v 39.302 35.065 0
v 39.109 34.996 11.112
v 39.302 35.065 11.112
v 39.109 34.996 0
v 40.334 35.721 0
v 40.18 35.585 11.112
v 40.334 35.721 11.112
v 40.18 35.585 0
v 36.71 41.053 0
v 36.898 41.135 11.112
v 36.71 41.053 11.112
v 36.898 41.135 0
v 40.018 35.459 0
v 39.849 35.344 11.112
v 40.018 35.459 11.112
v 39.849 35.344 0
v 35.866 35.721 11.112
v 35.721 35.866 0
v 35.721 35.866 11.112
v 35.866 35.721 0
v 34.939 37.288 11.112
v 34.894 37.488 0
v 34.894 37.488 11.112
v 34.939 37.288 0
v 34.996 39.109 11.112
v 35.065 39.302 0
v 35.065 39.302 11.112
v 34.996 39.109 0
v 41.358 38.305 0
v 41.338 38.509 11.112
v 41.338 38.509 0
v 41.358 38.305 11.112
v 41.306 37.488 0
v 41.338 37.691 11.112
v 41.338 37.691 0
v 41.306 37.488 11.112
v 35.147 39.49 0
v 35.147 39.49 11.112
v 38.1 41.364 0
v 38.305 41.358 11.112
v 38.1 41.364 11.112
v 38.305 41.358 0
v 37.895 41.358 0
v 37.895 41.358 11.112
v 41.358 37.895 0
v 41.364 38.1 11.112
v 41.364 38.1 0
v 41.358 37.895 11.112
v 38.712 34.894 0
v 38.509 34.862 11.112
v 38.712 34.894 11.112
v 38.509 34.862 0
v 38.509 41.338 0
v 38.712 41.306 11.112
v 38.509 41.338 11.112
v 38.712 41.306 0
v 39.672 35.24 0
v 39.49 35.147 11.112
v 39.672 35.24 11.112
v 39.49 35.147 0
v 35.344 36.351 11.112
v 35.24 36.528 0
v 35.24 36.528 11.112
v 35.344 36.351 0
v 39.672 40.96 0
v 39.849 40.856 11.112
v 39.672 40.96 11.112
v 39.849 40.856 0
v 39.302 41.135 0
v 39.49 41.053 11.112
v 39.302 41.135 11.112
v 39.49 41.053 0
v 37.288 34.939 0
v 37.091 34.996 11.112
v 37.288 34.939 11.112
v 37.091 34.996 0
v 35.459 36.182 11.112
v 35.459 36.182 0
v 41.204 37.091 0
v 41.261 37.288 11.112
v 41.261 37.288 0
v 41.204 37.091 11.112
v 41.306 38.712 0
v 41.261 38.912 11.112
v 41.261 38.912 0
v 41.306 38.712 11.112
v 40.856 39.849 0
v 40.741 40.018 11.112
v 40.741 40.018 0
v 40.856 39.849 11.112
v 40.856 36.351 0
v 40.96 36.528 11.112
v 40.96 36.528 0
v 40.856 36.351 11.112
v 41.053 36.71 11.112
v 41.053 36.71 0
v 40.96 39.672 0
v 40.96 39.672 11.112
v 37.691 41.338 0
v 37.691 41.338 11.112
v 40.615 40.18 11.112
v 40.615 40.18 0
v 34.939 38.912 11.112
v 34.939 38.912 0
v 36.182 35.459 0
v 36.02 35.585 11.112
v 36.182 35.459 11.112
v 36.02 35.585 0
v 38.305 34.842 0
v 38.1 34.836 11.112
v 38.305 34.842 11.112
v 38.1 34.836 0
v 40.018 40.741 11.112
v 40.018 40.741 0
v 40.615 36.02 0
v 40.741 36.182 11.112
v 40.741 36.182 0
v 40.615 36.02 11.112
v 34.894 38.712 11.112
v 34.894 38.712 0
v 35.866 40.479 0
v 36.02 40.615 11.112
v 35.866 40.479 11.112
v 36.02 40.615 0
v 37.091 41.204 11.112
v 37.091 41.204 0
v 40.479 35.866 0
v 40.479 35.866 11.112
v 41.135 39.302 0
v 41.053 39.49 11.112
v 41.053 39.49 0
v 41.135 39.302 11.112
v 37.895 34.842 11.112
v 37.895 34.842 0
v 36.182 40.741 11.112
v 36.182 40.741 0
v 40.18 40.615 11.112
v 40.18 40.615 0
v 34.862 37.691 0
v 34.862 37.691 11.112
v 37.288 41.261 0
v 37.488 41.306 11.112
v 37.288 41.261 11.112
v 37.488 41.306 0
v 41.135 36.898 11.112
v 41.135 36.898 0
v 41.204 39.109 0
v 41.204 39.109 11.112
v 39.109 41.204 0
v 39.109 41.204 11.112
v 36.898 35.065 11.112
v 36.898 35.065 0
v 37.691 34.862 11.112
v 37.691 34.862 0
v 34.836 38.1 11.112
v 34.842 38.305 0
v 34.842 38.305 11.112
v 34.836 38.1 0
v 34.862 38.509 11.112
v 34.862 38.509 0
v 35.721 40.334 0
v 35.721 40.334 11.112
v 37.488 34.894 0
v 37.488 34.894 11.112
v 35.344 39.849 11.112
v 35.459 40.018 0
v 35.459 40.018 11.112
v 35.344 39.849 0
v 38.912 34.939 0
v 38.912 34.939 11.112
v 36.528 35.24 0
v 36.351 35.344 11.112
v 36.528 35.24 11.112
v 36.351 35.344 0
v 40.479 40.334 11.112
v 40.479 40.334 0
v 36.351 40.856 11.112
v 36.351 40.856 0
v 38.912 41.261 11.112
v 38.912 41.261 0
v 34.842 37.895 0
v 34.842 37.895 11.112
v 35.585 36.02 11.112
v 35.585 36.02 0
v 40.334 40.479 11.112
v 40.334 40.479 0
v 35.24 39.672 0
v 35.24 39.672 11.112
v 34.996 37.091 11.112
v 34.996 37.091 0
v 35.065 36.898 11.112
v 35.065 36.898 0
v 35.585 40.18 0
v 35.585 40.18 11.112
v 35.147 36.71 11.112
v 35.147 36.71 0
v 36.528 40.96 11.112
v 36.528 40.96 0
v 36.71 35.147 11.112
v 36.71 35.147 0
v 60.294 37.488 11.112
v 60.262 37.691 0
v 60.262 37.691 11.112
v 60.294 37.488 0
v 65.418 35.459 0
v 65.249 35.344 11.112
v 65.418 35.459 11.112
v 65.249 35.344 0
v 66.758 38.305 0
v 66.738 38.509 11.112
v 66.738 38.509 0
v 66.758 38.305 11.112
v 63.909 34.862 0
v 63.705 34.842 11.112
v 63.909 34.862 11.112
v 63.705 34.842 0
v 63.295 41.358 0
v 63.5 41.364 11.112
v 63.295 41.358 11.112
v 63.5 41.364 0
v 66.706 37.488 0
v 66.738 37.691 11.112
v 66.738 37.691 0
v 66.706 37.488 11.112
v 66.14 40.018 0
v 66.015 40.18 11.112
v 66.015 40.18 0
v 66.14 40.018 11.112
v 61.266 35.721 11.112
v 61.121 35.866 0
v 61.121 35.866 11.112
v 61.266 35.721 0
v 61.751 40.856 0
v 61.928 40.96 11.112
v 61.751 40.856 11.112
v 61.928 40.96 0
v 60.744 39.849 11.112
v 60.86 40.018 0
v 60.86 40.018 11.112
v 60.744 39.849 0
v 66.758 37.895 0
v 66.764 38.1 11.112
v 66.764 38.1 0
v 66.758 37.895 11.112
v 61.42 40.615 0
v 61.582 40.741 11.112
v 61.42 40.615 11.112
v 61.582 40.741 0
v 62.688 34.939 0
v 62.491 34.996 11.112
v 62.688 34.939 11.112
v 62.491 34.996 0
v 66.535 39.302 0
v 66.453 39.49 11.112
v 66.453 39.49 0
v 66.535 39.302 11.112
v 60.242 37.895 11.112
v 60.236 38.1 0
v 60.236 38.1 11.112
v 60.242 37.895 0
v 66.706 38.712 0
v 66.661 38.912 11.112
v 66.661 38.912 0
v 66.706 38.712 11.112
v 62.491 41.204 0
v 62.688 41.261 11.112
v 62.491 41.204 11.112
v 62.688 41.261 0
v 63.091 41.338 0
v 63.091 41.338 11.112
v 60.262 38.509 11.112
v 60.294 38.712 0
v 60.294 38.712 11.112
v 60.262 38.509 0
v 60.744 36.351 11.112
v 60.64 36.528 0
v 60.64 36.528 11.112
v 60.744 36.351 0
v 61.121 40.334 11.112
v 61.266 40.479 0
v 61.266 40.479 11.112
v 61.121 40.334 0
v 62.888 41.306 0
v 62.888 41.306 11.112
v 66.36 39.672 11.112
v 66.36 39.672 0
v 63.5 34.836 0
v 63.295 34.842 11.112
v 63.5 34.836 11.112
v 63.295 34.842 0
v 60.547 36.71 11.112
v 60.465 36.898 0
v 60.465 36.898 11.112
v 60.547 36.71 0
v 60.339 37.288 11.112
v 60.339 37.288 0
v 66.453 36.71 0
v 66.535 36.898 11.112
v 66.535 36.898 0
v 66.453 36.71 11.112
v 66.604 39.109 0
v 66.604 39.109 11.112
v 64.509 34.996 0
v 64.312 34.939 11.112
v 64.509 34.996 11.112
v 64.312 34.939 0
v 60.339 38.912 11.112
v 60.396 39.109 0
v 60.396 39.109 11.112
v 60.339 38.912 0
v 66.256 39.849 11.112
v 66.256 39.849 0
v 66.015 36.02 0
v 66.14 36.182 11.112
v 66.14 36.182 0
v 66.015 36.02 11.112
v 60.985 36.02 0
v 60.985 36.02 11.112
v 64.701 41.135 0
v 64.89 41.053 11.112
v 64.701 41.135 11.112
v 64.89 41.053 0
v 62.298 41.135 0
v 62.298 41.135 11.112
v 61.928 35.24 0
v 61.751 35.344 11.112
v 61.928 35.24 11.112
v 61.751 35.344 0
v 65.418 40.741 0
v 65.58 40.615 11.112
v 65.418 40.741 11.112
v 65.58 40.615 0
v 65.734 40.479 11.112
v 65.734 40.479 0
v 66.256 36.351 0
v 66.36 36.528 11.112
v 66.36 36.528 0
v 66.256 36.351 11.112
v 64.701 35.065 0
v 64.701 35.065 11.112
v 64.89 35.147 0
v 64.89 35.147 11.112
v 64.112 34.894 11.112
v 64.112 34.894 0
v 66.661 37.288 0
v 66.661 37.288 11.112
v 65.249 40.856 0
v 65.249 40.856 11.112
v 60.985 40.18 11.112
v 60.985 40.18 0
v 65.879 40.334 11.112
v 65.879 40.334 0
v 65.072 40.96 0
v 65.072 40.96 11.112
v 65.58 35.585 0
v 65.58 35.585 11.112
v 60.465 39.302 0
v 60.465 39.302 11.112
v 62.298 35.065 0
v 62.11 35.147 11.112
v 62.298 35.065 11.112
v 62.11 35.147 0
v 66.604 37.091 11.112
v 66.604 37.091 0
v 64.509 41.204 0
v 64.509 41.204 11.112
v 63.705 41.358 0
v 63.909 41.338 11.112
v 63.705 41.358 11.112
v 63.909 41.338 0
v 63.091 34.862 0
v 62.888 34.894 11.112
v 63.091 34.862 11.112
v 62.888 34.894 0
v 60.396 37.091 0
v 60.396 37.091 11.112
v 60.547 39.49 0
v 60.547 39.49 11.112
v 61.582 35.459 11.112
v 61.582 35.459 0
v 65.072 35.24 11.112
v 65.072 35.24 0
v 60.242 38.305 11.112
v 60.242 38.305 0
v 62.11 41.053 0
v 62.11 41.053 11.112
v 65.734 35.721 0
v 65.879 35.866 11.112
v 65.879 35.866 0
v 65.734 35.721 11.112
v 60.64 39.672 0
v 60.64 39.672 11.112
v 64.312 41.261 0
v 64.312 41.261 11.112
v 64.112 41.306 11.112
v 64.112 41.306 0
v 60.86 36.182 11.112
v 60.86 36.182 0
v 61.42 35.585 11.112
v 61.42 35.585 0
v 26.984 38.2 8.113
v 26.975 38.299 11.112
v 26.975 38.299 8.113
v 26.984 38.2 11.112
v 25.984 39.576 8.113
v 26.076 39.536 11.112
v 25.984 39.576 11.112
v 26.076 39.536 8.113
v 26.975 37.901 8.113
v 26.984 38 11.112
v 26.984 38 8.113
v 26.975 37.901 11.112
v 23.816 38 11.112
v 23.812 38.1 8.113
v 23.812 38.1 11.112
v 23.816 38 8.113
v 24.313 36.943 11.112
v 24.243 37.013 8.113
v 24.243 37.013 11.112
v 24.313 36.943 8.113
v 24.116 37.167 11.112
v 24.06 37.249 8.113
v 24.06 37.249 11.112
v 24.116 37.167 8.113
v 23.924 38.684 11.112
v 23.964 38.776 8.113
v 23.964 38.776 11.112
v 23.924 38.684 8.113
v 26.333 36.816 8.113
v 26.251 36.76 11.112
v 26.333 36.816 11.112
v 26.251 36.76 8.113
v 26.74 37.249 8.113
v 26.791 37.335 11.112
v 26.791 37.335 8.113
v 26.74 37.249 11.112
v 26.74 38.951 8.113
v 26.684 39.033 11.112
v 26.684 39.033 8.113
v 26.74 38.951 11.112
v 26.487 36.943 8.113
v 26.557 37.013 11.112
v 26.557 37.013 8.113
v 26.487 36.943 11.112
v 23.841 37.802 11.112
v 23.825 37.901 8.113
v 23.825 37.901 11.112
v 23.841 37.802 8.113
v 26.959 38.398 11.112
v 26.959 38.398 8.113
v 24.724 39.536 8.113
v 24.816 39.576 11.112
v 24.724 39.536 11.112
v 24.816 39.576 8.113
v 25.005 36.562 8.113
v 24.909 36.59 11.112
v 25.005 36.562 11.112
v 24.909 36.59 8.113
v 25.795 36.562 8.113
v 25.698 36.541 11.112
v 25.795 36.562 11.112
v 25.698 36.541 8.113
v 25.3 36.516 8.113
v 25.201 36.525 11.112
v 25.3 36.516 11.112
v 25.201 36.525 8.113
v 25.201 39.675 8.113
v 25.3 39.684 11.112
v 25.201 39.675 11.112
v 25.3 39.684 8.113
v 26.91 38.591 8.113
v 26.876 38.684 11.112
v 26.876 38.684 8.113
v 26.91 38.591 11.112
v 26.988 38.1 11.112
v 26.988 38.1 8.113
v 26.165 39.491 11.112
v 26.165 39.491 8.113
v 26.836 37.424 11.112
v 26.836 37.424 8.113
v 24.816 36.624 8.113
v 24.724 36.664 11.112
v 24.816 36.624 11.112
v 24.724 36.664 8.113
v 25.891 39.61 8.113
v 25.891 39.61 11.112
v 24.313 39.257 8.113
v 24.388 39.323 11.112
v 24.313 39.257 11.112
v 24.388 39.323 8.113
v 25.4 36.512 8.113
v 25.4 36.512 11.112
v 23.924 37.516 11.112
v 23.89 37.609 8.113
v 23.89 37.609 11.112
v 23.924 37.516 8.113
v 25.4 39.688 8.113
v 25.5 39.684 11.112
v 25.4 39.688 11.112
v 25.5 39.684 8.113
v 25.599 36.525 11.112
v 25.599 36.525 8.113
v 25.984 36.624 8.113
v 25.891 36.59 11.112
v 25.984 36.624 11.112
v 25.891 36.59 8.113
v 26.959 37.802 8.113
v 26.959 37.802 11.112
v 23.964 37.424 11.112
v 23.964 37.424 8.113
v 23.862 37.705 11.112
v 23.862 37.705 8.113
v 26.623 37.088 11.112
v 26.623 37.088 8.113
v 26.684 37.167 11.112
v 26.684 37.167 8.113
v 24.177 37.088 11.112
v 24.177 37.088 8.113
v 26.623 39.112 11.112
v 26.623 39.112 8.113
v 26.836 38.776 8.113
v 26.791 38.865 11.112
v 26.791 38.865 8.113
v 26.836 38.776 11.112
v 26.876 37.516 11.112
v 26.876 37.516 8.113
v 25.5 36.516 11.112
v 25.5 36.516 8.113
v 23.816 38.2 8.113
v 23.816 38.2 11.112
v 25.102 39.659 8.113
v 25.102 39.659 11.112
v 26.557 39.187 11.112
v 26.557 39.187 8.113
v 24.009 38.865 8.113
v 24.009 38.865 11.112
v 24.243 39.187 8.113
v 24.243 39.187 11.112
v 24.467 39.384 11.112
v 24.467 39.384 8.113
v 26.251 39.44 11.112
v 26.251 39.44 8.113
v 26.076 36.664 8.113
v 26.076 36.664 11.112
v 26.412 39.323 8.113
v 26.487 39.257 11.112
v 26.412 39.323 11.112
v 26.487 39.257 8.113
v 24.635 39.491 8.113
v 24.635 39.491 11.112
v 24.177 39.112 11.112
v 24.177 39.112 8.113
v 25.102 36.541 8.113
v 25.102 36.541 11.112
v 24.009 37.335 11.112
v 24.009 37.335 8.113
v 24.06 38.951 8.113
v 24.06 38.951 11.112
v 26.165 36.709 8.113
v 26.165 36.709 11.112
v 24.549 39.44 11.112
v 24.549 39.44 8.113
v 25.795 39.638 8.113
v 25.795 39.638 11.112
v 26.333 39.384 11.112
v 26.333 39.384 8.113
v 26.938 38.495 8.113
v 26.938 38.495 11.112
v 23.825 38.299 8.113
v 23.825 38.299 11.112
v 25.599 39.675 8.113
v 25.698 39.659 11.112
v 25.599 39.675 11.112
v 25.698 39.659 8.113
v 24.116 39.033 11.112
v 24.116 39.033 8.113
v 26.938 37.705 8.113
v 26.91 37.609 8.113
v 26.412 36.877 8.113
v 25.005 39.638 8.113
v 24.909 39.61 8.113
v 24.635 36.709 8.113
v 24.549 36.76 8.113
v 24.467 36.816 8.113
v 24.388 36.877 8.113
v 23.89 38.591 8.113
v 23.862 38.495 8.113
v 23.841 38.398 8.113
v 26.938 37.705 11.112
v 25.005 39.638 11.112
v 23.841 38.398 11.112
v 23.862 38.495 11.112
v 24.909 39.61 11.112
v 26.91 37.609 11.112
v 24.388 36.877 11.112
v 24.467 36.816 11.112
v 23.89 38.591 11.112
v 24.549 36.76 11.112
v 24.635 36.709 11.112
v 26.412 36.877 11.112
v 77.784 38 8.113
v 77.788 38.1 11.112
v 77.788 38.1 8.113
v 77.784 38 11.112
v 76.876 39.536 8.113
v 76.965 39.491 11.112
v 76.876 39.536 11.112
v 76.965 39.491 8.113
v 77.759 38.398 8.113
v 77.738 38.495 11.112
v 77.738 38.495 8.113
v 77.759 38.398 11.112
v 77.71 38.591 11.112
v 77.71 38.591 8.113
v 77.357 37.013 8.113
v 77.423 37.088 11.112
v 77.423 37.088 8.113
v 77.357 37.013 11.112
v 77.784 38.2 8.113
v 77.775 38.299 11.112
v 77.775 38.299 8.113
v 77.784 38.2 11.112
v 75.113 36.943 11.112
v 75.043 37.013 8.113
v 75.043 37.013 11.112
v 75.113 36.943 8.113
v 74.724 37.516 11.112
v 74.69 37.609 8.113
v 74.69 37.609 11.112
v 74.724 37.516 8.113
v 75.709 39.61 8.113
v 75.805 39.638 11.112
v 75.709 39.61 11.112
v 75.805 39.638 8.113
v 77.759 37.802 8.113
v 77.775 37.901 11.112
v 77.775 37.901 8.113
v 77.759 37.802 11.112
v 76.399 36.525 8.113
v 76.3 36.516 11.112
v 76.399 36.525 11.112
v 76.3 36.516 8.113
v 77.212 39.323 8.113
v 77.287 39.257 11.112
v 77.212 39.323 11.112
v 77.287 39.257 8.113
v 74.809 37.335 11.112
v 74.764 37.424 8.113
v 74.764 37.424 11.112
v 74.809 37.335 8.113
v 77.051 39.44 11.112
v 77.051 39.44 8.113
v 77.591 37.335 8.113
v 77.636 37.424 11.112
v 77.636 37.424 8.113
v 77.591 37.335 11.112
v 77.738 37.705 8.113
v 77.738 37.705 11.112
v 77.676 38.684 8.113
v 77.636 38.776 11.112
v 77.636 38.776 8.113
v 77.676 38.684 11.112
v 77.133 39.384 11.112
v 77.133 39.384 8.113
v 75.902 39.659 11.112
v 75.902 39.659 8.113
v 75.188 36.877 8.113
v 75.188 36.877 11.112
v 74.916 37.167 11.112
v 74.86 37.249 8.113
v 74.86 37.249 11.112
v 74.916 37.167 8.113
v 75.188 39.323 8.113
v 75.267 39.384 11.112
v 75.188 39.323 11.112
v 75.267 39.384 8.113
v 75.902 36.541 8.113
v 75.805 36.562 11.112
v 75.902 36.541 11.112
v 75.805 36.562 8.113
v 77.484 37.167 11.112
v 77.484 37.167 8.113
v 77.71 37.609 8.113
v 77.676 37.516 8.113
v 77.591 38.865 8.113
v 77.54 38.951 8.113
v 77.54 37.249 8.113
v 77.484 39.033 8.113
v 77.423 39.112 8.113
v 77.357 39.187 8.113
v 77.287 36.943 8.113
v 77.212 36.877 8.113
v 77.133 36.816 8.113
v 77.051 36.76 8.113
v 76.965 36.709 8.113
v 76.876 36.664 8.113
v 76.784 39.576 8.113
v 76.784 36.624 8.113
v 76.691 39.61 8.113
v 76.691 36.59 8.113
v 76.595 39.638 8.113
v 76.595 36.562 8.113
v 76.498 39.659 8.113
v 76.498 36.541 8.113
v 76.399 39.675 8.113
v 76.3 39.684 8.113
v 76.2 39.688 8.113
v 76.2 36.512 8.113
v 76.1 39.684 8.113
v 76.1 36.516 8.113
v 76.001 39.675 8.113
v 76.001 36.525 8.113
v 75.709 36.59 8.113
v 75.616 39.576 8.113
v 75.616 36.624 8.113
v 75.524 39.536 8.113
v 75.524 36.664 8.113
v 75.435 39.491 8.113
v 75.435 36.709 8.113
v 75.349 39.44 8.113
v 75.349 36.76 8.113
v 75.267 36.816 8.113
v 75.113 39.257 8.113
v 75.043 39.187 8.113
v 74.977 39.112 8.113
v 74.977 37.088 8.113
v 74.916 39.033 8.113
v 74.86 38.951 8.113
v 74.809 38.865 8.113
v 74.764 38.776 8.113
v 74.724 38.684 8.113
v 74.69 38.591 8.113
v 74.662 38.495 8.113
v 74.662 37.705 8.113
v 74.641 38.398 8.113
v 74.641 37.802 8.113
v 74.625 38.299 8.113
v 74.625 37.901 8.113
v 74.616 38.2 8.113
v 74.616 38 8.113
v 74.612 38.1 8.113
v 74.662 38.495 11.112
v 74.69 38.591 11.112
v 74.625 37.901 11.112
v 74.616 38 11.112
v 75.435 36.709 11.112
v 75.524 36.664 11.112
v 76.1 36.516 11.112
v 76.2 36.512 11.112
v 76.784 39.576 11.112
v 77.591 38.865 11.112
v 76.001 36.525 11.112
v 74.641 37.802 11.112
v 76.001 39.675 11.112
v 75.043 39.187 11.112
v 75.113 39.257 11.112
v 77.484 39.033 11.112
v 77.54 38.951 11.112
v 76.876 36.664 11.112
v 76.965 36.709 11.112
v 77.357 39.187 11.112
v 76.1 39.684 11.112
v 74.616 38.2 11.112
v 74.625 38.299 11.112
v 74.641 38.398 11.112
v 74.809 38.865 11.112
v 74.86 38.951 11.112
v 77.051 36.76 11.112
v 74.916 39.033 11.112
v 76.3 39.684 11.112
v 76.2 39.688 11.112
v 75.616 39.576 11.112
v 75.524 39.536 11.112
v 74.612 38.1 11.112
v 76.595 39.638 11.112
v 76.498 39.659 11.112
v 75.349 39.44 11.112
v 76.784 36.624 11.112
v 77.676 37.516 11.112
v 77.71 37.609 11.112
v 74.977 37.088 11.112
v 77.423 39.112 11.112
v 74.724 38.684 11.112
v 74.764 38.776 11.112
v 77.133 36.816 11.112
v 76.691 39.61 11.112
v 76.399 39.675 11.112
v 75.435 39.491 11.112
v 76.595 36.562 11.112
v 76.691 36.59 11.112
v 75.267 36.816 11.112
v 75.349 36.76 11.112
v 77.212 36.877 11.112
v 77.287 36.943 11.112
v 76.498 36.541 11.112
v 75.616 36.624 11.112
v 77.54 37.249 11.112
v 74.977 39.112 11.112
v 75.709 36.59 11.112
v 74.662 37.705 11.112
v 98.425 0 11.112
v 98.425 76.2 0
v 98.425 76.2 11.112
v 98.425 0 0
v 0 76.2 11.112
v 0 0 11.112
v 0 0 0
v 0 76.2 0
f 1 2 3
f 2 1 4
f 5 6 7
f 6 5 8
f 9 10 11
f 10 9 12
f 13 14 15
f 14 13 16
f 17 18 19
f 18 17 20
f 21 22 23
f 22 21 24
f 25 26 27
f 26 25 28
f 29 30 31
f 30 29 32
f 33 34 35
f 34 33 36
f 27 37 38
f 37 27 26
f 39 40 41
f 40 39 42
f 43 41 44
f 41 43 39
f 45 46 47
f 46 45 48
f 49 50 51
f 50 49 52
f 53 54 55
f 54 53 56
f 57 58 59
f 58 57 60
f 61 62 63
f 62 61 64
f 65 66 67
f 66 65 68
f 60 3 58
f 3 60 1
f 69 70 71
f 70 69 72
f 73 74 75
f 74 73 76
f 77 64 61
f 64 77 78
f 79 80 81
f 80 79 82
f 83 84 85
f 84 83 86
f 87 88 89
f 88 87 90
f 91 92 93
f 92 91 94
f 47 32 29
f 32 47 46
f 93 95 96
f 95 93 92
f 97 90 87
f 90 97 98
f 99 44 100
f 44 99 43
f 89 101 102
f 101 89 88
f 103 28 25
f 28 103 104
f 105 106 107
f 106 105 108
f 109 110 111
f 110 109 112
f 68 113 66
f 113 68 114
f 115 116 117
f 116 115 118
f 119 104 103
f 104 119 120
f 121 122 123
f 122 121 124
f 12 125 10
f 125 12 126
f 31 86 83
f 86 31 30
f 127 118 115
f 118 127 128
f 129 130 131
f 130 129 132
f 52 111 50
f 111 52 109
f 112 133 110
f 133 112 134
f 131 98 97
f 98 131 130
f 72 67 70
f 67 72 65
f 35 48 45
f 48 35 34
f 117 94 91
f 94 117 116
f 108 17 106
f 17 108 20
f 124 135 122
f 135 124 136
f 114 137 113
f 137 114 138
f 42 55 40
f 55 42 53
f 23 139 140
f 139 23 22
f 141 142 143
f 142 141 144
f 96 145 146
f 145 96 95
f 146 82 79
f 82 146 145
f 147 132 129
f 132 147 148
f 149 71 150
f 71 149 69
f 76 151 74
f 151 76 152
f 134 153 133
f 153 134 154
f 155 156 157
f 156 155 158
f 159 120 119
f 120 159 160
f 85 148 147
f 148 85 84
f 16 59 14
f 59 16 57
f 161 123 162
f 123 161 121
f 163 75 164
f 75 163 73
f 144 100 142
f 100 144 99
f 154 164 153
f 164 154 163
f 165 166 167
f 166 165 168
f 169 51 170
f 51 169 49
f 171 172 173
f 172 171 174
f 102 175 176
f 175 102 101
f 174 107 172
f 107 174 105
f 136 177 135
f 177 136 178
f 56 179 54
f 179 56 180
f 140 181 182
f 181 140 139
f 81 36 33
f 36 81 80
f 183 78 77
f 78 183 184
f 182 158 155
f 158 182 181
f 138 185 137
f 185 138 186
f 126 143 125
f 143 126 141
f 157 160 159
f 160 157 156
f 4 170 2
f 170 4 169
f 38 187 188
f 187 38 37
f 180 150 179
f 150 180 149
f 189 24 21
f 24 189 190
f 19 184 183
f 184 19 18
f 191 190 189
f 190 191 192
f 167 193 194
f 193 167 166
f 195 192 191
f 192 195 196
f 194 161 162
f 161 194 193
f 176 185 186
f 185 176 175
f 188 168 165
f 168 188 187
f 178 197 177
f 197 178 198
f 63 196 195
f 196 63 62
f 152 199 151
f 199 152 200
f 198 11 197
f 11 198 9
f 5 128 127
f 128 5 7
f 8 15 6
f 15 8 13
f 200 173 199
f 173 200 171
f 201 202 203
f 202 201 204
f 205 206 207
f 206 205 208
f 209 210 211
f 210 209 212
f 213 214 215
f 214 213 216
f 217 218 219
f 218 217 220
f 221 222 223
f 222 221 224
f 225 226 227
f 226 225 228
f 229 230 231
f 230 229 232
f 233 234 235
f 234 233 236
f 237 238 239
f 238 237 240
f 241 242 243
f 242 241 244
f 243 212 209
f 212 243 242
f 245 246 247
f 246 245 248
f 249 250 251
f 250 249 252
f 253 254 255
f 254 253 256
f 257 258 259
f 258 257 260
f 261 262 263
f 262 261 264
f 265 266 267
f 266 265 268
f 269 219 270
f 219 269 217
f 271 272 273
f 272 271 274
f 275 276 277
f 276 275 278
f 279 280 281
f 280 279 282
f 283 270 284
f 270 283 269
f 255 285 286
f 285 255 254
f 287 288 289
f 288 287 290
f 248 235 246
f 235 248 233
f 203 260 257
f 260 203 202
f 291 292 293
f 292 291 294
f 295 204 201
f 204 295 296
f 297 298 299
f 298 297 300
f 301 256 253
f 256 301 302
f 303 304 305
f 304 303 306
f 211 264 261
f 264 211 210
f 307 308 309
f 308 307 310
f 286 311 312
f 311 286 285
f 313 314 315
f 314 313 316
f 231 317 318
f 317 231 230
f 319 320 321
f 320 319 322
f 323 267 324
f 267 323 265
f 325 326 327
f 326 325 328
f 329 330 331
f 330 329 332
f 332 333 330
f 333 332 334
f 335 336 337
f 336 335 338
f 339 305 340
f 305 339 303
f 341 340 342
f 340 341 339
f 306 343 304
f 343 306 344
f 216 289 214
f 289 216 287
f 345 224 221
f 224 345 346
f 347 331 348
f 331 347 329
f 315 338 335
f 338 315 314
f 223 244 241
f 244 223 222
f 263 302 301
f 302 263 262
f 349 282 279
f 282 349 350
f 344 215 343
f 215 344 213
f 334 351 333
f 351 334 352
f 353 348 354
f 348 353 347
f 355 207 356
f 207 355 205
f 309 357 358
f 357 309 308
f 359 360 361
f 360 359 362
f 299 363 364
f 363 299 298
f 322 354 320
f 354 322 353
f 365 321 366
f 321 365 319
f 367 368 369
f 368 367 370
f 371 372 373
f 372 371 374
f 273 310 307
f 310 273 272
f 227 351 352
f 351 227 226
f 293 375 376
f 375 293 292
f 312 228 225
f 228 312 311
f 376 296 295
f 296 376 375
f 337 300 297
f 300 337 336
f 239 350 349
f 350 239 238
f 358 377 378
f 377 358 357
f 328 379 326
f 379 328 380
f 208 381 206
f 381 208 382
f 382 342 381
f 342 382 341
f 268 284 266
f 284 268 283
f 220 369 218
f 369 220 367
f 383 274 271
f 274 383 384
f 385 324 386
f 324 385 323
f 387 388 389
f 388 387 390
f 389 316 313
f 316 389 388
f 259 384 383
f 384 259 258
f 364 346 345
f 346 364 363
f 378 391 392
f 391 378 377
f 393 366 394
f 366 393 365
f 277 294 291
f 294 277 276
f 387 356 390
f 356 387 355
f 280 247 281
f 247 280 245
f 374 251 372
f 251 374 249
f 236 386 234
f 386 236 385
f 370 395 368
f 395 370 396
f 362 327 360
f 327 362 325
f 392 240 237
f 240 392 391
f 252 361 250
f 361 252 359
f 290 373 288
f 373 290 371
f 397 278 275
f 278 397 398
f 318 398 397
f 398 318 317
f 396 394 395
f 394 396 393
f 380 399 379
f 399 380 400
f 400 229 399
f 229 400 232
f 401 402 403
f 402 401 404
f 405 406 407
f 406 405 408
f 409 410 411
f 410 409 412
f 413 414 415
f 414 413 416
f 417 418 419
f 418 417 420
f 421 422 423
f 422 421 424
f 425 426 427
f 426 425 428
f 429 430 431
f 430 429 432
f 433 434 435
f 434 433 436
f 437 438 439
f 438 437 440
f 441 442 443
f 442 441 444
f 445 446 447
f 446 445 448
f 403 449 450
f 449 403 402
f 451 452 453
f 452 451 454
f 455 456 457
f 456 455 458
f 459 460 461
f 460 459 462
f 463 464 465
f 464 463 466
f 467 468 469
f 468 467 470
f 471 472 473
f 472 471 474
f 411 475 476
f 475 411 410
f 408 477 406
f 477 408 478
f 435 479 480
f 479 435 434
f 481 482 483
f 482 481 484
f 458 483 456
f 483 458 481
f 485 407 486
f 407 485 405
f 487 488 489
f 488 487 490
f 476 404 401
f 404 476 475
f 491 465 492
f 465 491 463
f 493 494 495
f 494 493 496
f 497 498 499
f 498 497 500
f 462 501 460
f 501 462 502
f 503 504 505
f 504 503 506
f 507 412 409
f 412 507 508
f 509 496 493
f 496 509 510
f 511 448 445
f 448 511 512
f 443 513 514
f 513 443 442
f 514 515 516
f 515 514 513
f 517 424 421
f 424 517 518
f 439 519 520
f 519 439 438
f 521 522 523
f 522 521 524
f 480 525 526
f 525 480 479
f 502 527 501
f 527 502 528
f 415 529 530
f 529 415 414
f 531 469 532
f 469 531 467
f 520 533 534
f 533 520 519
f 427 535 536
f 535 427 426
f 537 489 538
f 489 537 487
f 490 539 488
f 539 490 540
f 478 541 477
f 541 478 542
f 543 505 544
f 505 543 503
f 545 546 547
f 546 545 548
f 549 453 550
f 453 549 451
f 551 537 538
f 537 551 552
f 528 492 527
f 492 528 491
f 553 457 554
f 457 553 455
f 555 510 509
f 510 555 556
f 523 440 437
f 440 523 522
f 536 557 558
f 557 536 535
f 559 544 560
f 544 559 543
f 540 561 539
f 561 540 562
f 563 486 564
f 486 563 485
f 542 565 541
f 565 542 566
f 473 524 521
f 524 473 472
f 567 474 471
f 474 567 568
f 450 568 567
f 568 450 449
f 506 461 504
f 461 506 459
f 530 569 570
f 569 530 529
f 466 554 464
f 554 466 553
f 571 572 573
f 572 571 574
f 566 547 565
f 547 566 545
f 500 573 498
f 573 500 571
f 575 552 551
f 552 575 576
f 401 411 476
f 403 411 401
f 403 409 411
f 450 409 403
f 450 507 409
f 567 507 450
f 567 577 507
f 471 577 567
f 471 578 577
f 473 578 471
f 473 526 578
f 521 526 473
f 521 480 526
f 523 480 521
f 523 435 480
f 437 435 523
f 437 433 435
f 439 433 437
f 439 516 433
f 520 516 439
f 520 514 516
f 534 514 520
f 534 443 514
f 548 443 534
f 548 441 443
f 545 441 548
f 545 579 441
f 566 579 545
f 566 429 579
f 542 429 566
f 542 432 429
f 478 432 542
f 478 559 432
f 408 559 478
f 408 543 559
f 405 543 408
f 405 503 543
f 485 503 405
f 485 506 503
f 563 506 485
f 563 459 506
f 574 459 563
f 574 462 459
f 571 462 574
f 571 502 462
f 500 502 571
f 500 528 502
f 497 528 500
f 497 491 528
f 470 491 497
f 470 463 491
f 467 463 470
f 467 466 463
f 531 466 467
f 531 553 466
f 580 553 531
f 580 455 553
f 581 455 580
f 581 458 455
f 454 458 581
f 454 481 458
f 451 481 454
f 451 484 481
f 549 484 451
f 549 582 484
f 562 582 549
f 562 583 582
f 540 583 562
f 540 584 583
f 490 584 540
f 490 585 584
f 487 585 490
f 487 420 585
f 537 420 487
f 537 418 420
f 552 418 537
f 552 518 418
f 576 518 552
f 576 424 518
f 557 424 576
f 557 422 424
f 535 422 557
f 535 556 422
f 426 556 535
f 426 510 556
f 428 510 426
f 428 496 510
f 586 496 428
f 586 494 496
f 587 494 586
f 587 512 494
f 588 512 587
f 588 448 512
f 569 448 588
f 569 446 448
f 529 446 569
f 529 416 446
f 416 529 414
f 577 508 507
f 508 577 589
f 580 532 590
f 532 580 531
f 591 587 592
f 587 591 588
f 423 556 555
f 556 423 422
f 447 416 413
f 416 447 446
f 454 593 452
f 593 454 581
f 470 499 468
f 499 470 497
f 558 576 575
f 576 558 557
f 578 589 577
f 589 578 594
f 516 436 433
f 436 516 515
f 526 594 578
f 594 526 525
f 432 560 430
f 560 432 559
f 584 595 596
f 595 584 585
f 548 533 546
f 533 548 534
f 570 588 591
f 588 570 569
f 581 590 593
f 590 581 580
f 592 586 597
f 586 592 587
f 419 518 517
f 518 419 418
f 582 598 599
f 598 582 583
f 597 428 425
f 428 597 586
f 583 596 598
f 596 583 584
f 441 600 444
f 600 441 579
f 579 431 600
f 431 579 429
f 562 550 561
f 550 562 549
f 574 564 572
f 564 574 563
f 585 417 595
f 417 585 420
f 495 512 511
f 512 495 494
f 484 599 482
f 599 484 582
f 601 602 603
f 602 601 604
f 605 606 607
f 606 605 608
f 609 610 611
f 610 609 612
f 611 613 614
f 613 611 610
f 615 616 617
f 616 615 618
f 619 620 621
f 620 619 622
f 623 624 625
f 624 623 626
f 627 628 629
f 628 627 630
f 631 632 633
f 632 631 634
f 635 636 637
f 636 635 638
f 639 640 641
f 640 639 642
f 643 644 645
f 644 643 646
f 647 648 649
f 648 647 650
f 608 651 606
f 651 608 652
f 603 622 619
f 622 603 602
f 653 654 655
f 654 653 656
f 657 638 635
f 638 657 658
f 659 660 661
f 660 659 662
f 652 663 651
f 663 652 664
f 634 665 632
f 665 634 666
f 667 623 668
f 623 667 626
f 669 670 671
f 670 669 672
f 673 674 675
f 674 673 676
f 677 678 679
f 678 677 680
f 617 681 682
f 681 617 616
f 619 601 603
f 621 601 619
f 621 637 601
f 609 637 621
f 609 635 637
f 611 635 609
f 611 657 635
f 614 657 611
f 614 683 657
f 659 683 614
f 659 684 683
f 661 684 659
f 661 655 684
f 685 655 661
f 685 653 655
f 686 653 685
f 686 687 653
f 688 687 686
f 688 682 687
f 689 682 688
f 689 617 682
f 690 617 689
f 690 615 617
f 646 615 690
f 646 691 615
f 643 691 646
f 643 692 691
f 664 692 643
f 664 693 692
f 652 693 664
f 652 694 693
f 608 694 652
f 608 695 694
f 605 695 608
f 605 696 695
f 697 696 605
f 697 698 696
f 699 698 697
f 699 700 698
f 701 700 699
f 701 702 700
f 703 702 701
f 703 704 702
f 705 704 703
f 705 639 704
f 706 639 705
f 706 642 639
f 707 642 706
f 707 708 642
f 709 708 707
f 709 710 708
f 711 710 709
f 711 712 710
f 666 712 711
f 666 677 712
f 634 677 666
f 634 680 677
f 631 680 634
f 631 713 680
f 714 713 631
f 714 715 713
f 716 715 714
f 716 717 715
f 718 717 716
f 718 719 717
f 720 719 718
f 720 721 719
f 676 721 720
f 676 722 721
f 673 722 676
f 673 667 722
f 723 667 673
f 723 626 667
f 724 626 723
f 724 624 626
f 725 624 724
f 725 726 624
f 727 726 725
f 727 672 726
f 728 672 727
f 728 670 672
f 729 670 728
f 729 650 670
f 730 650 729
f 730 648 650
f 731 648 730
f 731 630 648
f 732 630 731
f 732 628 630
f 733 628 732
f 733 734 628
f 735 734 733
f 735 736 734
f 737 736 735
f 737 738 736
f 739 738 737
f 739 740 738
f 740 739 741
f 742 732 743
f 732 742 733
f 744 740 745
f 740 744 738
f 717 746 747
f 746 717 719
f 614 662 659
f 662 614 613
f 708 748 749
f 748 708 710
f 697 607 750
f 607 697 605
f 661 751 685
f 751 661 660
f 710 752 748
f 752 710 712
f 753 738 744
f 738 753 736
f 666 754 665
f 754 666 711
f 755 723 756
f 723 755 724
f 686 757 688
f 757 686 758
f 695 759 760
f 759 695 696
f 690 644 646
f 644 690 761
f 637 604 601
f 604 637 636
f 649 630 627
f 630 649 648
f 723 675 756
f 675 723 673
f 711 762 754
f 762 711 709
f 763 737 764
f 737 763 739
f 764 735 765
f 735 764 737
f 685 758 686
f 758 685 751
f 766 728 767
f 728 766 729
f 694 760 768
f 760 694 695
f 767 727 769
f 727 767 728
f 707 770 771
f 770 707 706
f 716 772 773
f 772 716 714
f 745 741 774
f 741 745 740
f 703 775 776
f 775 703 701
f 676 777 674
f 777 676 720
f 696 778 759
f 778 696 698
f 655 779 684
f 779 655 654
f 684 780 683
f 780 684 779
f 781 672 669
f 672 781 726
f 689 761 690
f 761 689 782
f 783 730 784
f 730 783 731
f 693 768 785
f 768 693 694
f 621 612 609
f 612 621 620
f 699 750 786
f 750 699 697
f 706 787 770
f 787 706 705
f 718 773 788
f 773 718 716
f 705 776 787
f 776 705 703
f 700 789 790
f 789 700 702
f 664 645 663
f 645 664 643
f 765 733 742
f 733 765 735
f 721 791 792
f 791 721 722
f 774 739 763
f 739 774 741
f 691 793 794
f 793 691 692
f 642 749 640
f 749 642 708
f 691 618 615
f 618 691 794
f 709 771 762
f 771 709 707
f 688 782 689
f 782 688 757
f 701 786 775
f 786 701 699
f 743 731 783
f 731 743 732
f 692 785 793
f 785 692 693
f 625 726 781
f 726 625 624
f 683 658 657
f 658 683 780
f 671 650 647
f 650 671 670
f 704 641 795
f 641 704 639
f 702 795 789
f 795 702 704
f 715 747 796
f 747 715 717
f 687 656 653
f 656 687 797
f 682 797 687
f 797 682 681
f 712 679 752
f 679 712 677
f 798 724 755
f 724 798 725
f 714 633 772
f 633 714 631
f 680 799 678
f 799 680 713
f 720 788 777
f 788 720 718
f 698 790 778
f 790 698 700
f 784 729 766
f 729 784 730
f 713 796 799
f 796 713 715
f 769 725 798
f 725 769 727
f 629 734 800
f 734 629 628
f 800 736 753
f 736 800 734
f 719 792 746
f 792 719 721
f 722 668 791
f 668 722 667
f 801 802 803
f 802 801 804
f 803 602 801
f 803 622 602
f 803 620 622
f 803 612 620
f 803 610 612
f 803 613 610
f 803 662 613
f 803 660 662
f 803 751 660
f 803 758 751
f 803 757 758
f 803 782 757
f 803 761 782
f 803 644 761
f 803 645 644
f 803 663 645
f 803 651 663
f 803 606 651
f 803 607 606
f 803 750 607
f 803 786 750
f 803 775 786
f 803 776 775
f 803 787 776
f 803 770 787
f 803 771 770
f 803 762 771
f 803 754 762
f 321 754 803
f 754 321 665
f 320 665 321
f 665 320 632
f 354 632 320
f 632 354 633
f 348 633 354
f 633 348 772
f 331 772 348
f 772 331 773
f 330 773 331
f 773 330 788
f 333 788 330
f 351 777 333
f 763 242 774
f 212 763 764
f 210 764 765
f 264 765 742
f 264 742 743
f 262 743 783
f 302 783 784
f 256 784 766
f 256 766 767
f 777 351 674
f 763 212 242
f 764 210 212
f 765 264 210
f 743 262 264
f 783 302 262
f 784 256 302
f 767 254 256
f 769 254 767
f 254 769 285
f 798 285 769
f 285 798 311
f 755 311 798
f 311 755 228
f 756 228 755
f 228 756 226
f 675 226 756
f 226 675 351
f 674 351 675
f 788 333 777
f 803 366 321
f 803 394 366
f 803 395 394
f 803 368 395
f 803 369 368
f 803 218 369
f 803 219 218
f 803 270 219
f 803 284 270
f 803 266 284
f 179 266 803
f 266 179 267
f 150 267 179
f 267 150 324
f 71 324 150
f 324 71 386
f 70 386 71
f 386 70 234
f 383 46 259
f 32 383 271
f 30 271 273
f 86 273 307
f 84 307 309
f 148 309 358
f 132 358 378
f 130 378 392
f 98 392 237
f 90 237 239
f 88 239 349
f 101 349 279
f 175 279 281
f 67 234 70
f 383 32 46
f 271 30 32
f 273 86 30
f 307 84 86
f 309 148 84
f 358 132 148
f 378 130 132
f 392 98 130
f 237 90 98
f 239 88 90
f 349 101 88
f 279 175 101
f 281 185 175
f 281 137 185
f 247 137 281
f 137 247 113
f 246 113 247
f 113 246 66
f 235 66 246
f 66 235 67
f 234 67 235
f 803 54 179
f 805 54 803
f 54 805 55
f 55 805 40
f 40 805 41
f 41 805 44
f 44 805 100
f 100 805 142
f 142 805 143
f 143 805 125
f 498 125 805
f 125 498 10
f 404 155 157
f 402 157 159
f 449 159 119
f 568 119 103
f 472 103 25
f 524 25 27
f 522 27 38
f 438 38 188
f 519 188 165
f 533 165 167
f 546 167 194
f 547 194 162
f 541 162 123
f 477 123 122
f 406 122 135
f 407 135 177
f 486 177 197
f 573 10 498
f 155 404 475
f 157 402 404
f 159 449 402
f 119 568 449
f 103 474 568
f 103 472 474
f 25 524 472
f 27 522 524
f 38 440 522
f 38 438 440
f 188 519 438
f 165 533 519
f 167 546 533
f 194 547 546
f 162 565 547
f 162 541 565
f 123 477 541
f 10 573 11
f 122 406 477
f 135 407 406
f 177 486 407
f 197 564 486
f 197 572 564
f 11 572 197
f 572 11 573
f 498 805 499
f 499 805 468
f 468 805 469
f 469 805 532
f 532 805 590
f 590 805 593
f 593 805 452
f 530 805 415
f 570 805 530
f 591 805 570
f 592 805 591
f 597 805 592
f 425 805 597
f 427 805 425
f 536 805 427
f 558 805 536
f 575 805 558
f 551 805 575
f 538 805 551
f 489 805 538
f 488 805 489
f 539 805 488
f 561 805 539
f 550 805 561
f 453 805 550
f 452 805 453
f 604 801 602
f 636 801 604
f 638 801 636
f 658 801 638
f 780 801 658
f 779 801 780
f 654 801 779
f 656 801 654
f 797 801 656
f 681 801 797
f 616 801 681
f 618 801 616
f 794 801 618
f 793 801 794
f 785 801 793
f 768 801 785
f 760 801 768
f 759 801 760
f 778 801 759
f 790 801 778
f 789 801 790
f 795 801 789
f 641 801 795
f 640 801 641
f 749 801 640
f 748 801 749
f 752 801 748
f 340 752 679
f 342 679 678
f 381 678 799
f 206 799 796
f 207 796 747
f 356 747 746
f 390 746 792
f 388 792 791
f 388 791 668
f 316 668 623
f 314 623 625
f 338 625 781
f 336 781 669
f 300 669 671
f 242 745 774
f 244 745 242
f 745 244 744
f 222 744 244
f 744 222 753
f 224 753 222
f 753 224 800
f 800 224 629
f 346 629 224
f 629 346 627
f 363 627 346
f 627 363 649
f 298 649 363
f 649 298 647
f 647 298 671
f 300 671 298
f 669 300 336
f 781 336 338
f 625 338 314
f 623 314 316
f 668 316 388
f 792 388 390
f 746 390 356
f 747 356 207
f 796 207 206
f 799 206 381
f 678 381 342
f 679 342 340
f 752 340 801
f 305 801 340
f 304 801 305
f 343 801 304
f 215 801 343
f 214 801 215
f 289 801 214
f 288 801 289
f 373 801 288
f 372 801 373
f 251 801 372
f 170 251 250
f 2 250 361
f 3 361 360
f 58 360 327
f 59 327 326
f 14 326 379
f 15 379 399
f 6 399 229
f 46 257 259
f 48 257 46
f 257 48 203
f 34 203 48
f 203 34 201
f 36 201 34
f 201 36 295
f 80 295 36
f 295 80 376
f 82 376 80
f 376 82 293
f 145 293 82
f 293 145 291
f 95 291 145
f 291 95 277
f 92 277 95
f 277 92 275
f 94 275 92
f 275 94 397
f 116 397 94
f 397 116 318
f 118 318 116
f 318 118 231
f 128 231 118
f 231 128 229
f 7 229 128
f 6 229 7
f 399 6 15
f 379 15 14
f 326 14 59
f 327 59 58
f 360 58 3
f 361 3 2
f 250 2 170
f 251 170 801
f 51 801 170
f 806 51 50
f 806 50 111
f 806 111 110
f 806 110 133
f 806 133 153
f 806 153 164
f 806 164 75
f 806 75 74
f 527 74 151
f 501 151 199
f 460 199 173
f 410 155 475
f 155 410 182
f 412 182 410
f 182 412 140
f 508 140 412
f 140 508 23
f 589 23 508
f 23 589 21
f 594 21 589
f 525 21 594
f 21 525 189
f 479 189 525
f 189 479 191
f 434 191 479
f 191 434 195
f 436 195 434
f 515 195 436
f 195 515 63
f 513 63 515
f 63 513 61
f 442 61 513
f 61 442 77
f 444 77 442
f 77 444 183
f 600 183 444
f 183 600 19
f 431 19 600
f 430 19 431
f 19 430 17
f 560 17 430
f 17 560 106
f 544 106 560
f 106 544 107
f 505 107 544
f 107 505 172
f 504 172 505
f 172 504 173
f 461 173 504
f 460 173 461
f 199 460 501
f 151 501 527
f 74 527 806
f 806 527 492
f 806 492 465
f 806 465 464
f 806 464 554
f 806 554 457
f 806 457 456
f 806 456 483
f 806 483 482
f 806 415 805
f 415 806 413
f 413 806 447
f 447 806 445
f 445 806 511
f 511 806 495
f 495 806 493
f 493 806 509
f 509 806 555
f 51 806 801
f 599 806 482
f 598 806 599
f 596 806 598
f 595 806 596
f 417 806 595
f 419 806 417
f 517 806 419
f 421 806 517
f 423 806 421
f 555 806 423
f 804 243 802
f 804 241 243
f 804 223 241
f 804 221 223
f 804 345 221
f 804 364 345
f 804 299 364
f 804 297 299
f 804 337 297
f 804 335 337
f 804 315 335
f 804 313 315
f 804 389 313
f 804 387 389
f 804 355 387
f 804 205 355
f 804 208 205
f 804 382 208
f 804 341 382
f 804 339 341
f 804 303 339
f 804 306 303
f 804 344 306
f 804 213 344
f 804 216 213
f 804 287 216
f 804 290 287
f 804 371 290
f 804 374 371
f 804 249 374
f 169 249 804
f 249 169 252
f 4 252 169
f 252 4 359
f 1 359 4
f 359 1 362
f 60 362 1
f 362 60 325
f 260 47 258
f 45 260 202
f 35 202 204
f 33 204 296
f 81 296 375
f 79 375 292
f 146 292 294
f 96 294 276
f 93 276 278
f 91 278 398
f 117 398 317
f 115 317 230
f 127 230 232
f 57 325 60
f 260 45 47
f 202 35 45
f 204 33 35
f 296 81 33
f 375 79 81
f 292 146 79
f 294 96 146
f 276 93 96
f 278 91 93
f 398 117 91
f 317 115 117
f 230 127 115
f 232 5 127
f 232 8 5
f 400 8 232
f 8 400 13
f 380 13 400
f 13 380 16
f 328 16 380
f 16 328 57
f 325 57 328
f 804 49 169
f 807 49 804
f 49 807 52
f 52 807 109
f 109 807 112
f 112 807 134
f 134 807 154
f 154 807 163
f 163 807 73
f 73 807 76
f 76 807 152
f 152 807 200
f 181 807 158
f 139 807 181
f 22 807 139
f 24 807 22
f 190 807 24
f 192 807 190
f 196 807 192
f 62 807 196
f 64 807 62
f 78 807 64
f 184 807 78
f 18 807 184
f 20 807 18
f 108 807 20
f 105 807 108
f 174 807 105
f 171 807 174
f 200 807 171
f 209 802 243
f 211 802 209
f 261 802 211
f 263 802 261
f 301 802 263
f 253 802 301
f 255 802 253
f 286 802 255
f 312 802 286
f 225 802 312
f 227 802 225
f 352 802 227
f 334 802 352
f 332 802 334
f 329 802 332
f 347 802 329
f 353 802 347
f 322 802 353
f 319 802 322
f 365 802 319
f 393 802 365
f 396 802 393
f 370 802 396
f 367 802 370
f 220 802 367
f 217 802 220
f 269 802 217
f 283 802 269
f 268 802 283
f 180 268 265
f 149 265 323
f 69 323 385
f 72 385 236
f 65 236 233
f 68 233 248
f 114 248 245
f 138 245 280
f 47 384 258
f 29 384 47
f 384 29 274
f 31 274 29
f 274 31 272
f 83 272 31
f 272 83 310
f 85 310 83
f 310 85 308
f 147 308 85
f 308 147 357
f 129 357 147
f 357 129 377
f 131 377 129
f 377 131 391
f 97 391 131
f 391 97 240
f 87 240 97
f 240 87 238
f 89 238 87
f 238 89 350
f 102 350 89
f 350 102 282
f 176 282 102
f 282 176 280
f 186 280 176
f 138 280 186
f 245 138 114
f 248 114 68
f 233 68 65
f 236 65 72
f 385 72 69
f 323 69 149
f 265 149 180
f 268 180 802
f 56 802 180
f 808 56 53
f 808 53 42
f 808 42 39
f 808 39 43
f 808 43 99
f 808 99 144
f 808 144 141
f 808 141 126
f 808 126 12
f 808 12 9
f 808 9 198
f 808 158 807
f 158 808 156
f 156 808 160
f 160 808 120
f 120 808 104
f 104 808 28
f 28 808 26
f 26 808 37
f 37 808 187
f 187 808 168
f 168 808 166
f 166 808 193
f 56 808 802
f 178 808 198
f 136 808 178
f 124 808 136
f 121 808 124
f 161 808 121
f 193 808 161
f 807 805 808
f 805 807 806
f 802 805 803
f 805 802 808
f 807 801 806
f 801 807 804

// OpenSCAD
// Units are mm, conversion for when inch is wanted
inch = 25.4;
$fn=100;
stage_length = 3.875 * inch;
width = 3*inch;
TL_stage_height = 13/16*inch;
total_height = 1.25*inch;
quarter20_through = 0.257*inch / 2;
quarter20_counterbore = 6;

stage_pad = total_height - TL_stage_height;
echo(stage_pad/inch*16);
center_axis = 9.5 + stage_pad;

CORNER_SCREWS=false;

module pad(){
    difference(){
        // Thorlabs stage mount
        cube([stage_length, width, stage_pad]);
        
        if(CORNER_SCREWS){
        for (y=[.5,width/inch -0.5]){
            for(x=[.5, floor(stage_length/inch+.4) - 0.5]){
                translate([x*inch,y*inch, .125*inch]) union(){
                    cylinder(r=quarter20_through, h=inch, center=true);
                    cylinder(r=quarter20_counterbore, h=20);
                }
            }
        }
    }
        for(x=[1.5, 2.5]) translate([x*inch, width/2]) cylinder(r=quarter20_through, h=2*inch, center=true);
        translate([0,0,stage_pad])
        for(x=[1, 3]) translate([x*inch, width/2]) cylinder(r=1/16*inch, h=6, center=true);
    }
}

pad();
